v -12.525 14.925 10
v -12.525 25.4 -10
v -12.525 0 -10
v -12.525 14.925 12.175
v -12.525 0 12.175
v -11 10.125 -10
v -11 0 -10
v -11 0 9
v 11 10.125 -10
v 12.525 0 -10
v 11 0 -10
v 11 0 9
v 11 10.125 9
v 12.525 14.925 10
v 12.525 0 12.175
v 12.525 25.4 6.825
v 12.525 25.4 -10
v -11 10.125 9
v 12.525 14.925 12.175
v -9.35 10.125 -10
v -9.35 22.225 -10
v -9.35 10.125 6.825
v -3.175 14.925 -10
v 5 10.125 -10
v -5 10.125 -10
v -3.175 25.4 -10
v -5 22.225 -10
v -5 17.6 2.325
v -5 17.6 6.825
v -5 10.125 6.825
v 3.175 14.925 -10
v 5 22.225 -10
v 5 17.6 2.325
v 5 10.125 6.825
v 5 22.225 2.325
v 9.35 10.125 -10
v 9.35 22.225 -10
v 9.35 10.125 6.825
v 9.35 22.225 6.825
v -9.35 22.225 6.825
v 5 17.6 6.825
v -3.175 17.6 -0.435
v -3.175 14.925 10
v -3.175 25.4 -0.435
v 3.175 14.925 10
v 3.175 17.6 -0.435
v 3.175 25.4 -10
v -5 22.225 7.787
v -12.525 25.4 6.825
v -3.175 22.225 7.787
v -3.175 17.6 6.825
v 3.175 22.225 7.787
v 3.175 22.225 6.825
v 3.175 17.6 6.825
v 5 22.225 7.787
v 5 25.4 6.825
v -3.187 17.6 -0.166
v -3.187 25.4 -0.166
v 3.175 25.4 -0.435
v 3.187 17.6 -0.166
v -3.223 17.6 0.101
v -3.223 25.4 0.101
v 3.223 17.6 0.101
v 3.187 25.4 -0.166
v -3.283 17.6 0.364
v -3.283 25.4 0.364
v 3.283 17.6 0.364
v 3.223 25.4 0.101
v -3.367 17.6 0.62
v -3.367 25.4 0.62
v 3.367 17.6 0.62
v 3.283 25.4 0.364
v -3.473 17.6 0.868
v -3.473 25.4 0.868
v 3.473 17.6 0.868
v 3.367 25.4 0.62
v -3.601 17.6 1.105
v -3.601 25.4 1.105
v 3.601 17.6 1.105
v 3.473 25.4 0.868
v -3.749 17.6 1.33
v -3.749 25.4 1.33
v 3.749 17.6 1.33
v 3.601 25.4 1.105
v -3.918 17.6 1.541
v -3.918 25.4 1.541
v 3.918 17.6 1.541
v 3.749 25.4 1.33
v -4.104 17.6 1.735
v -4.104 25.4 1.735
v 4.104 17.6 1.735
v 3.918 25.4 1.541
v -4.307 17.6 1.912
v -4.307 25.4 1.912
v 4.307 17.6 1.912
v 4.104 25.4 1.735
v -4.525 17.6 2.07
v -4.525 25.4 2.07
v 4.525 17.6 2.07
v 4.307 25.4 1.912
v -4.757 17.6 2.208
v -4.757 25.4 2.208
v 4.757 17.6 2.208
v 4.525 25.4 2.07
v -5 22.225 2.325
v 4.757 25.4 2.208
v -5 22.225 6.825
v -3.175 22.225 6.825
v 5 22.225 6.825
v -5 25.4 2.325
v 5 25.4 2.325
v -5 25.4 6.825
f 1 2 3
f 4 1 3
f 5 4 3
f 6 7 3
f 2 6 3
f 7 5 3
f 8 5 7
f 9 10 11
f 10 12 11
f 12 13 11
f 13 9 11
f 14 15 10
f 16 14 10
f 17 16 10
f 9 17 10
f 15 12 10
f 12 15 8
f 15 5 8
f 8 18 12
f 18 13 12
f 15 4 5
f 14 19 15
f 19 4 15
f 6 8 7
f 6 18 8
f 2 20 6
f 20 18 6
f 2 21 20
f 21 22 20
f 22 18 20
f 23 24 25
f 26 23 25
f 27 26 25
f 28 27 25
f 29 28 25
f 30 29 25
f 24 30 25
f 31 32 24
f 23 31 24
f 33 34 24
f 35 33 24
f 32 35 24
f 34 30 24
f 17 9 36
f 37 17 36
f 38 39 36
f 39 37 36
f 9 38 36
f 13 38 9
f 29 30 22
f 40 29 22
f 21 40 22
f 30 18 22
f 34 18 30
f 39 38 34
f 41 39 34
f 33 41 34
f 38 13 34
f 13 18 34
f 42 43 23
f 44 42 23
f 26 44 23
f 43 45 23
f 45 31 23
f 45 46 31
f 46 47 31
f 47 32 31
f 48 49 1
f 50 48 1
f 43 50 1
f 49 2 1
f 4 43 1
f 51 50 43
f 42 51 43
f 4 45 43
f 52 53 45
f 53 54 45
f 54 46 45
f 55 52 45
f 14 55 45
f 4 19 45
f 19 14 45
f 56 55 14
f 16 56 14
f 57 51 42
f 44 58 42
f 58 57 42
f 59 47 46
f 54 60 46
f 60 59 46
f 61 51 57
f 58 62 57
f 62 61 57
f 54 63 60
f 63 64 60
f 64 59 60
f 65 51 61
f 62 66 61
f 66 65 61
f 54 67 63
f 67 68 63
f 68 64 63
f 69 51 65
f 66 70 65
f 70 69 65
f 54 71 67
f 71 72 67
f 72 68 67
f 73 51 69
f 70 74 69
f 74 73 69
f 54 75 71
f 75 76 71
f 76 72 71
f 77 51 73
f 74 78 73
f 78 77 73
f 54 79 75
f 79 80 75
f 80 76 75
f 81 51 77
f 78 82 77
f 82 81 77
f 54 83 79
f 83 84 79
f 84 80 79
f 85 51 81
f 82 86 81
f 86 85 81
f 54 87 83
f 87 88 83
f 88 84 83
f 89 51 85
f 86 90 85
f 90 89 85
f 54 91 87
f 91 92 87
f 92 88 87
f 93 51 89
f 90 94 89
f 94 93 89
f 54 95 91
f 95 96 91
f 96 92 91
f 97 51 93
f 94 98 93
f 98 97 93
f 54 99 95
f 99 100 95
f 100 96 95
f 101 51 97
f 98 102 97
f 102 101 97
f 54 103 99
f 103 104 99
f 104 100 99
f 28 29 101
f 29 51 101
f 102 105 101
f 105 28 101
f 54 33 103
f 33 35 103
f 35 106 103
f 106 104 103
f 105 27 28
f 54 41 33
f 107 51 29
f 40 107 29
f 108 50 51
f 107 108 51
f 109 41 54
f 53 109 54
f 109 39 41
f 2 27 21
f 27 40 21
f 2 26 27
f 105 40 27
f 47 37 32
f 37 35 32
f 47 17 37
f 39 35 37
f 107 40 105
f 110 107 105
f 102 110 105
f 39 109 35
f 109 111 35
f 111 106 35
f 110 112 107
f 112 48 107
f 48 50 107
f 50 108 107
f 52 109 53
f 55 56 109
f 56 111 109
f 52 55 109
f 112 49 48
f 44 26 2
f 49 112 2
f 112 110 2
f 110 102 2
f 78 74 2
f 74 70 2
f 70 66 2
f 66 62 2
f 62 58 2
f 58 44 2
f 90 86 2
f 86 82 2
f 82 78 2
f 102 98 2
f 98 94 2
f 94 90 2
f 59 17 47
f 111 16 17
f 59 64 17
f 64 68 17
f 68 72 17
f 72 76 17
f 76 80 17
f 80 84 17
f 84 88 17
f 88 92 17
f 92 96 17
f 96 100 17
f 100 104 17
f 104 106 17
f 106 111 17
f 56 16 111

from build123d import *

# Parameters (mm, degrees)
SKETCH2_W           = 18.7
SKETCH2_H           = 20
BOSS_EXTRUDE1_DEPTH = 25.4
SKETCH3_W           = 6.35
SKETCH3_H           = 3.175
SKETCH3_H_2         = 4.125
CUT_EXTRUDE1_DEPTH  = 34.653863077
SKETCH5_W           = 3.175
SKETCH5_H           = 25.4
BOSS_EXTRUDE2_DEPTH = 20
SKETCH6_W           = 10
SKETCH6_H           = 10.125
CUT_EXTRUDE2_DEPTH  = 16.825
CUT_EXTRUDE3_REACH  = 34.439
SKETCH7_W           = 3
SKETCH7_H           = 3.5
SKETCH8_W           = 22
SKETCH8_H           = 10.125
CUT_EXTRUDE4_DEPTH  = 19
SKETCH9_W           = 2.175
SKETCH9_H           = 14.925
BOSS_EXTRUDE3_DEPTH = 25.05
SKETCH10_W          = 1.825
SKETCH10_H          = 7.8
CUT_EXTRUDE5_DEPTH  = 4.5
CUT_EXTRUDE6_DEPTH  = 38.694736038
SKETCH15_W          = 0.962350835
SKETCH15_H          = 3.175
CUT_EXTRUDE8_DEPTH  = 10
FILLET1_R           = 3


with BuildPart() as part:
    # Sketch2 → Boss-Extrude1 (new body)
    with BuildSketch(Plane(origin=(0, 0, 0), x_dir=(1, 0, 0), z_dir=(0, 1, 0))):
        Rectangle(SKETCH2_W, SKETCH2_H)
    extrude(amount=BOSS_EXTRUDE1_DEPTH)

    # Sketch3 → Cut-Extrude1 (cut, through all)
    with BuildSketch(Plane(origin=(0, 0, -10), x_dir=(-1, 0, 0), z_dir=(0, 0, -1))):
        with Locations((0, 16.5125)):
            Rectangle(SKETCH3_W, SKETCH3_H)
        with Locations((0, 20.1625)):
            Rectangle(SKETCH3_W, SKETCH3_H_2)
        with Locations((0, 23.8125)):
            Rectangle(SKETCH3_W, SKETCH3_H)
    extrude(amount=-CUT_EXTRUDE1_DEPTH, mode=Mode.SUBTRACT)

    # Sketch5 → Boss-Extrude2 (add)
    with BuildSketch(Plane(origin=(0, 0, -10), x_dir=(-1, 0, 0), z_dir=(0, 0, -1))):
        with Locations((-10.9375, 12.7)):
            Rectangle(SKETCH5_W, SKETCH5_H)
        with Locations((10.9375, 12.7)):
            Rectangle(SKETCH5_W, SKETCH5_H)
    extrude(amount=-BOSS_EXTRUDE2_DEPTH)

    # Sketch6 → Cut-Extrude2 (cut)
    with BuildSketch(Plane(origin=(0, 0, -10), x_dir=(-1, 0, 0), z_dir=(0, 0, -1))):
        Polygon((5, 22.225), (5, 10.125), (5, 0), (9.35, 0), (9.35, 22.225), align=None)
        with Locations((0, 5.0625)):
            Rectangle(SKETCH6_W, SKETCH6_H)
        Polygon((-5, 22.225), (-9.35, 22.225), (-9.35, 0), (-5, 0), (-5, 10.125), align=None)
    extrude(amount=-CUT_EXTRUDE2_DEPTH, mode=Mode.SUBTRACT)

    # Cut-Extrude3: up to this face of the body (flat: up to its plane)
    cut_extrude3_end = Plane(part.part.faces().sort_by_distance((-5, 16.175, -1.5875))[0])
    # Sketch7 → Cut-Extrude3 (cut, up to the picked face)
    with BuildSketch(Plane(origin=(5, 0, 0), x_dir=(0, 0, -1), z_dir=(1, 0, 0)), mode=Mode.PRIVATE) as cut_extrude3_sk1:
        with Locations((-4.825, 19.725)):
            Rectangle(SKETCH7_W, SKETCH7_H)
    cut_extrude3_tool1 = split(extrude(cut_extrude3_sk1.sketch, amount=-CUT_EXTRUDE3_REACH, mode=Mode.PRIVATE), bisect_by=cut_extrude3_end, keep=Keep.BOTH, mode=Mode.PRIVATE)
    add(cut_extrude3_tool1.solids().sort_by(Axis((5, 19.725, 4.825), (-1, 0, 0)))[0], mode=Mode.SUBTRACT)

    # Sketch8 → Cut-Extrude4 (cut)
    with BuildSketch(Plane(origin=(0, 0, -10), x_dir=(-1, 0, 0), z_dir=(0, 0, -1))):
        with Locations((0, 5.0625)):
            Rectangle(SKETCH8_W, SKETCH8_H)
    extrude(amount=-CUT_EXTRUDE4_DEPTH, mode=Mode.SUBTRACT)

    # Sketch9 → Boss-Extrude3 (add)
    with BuildSketch(Plane(origin=(12.525, 0, 0), x_dir=(0, 0, -1), z_dir=(1, 0, 0))):
        with Locations((-11.0875, 7.4625)):
            Rectangle(SKETCH9_W, SKETCH9_H)
    extrude(amount=-BOSS_EXTRUDE3_DEPTH)

    # Sketch10 → Cut-Extrude5 (cut)
    with BuildSketch(Plane(origin=(0, 0, 2.325), x_dir=(-1, 0, 0), z_dir=(0, 0, -1))):
        with Locations((-4.0875, 21.5)):
            Rectangle(SKETCH10_W, SKETCH10_H)
        with Locations((4.0875, 21.5)):
            Rectangle(SKETCH10_W, SKETCH10_H)
    extrude(amount=-CUT_EXTRUDE5_DEPTH, mode=Mode.SUBTRACT)

    # Sketch11 → Cut-Extrude6 (cut, through all)
    with BuildSketch(Plane(origin=(12.525, 0, 0), x_dir=(0, 0, -1), z_dir=(1, 0, 0))):
        Polygon((-10, 14.925), (-6.825, 25.4), (-10, 25.4), align=None)
    extrude(amount=-CUT_EXTRUDE6_DEPTH, mode=Mode.SUBTRACT)

    # Sketch15 → Cut-Extrude8 (cut)
    with BuildSketch(Plane(origin=(-5, 0, 0), x_dir=(0, 0, -1), z_dir=(1, 0, 0))):
        with Locations((-7.306175418, 23.8125)):
            Rectangle(SKETCH15_W, SKETCH15_H)
    extrude(amount=CUT_EXTRUDE8_DEPTH, mode=Mode.SUBTRACT)

    # Fillet1
    # the kernel refuses this fillet: 3 mm, written as the material it takes off along each edge
    with BuildSketch(Plane(origin=(3.175, 32.300803848, 2.325), x_dir=(0, 0, -1), z_dir=(0, -1, 0)), Plane(origin=(-3.175, 17.6, 2.325), x_dir=(0, 0, -1), z_dir=(0, 1, 0))) as fillet1_piece_1:
        with BuildLine():
            CenterArc((2.760321539, 3), FILLET1_R, 203.058244088, 66.941755912)
            Line((0, 1.825), (-0.055206431, 1.8015))
            ThreePointArc((-0.055206431, 1.8015), (-0.06, 0.9125), (-0.06, 0))
            Line((-0.06, 0), (0, -0.06))
            Line((0, -0.06), (2.760321539, -0.06))
            Line((2.760321539, -0.06), (2.760321539, 0))
        make_face()
    extrude(amount=14.700803848, mode=Mode.SUBTRACT)


solid = part.part
